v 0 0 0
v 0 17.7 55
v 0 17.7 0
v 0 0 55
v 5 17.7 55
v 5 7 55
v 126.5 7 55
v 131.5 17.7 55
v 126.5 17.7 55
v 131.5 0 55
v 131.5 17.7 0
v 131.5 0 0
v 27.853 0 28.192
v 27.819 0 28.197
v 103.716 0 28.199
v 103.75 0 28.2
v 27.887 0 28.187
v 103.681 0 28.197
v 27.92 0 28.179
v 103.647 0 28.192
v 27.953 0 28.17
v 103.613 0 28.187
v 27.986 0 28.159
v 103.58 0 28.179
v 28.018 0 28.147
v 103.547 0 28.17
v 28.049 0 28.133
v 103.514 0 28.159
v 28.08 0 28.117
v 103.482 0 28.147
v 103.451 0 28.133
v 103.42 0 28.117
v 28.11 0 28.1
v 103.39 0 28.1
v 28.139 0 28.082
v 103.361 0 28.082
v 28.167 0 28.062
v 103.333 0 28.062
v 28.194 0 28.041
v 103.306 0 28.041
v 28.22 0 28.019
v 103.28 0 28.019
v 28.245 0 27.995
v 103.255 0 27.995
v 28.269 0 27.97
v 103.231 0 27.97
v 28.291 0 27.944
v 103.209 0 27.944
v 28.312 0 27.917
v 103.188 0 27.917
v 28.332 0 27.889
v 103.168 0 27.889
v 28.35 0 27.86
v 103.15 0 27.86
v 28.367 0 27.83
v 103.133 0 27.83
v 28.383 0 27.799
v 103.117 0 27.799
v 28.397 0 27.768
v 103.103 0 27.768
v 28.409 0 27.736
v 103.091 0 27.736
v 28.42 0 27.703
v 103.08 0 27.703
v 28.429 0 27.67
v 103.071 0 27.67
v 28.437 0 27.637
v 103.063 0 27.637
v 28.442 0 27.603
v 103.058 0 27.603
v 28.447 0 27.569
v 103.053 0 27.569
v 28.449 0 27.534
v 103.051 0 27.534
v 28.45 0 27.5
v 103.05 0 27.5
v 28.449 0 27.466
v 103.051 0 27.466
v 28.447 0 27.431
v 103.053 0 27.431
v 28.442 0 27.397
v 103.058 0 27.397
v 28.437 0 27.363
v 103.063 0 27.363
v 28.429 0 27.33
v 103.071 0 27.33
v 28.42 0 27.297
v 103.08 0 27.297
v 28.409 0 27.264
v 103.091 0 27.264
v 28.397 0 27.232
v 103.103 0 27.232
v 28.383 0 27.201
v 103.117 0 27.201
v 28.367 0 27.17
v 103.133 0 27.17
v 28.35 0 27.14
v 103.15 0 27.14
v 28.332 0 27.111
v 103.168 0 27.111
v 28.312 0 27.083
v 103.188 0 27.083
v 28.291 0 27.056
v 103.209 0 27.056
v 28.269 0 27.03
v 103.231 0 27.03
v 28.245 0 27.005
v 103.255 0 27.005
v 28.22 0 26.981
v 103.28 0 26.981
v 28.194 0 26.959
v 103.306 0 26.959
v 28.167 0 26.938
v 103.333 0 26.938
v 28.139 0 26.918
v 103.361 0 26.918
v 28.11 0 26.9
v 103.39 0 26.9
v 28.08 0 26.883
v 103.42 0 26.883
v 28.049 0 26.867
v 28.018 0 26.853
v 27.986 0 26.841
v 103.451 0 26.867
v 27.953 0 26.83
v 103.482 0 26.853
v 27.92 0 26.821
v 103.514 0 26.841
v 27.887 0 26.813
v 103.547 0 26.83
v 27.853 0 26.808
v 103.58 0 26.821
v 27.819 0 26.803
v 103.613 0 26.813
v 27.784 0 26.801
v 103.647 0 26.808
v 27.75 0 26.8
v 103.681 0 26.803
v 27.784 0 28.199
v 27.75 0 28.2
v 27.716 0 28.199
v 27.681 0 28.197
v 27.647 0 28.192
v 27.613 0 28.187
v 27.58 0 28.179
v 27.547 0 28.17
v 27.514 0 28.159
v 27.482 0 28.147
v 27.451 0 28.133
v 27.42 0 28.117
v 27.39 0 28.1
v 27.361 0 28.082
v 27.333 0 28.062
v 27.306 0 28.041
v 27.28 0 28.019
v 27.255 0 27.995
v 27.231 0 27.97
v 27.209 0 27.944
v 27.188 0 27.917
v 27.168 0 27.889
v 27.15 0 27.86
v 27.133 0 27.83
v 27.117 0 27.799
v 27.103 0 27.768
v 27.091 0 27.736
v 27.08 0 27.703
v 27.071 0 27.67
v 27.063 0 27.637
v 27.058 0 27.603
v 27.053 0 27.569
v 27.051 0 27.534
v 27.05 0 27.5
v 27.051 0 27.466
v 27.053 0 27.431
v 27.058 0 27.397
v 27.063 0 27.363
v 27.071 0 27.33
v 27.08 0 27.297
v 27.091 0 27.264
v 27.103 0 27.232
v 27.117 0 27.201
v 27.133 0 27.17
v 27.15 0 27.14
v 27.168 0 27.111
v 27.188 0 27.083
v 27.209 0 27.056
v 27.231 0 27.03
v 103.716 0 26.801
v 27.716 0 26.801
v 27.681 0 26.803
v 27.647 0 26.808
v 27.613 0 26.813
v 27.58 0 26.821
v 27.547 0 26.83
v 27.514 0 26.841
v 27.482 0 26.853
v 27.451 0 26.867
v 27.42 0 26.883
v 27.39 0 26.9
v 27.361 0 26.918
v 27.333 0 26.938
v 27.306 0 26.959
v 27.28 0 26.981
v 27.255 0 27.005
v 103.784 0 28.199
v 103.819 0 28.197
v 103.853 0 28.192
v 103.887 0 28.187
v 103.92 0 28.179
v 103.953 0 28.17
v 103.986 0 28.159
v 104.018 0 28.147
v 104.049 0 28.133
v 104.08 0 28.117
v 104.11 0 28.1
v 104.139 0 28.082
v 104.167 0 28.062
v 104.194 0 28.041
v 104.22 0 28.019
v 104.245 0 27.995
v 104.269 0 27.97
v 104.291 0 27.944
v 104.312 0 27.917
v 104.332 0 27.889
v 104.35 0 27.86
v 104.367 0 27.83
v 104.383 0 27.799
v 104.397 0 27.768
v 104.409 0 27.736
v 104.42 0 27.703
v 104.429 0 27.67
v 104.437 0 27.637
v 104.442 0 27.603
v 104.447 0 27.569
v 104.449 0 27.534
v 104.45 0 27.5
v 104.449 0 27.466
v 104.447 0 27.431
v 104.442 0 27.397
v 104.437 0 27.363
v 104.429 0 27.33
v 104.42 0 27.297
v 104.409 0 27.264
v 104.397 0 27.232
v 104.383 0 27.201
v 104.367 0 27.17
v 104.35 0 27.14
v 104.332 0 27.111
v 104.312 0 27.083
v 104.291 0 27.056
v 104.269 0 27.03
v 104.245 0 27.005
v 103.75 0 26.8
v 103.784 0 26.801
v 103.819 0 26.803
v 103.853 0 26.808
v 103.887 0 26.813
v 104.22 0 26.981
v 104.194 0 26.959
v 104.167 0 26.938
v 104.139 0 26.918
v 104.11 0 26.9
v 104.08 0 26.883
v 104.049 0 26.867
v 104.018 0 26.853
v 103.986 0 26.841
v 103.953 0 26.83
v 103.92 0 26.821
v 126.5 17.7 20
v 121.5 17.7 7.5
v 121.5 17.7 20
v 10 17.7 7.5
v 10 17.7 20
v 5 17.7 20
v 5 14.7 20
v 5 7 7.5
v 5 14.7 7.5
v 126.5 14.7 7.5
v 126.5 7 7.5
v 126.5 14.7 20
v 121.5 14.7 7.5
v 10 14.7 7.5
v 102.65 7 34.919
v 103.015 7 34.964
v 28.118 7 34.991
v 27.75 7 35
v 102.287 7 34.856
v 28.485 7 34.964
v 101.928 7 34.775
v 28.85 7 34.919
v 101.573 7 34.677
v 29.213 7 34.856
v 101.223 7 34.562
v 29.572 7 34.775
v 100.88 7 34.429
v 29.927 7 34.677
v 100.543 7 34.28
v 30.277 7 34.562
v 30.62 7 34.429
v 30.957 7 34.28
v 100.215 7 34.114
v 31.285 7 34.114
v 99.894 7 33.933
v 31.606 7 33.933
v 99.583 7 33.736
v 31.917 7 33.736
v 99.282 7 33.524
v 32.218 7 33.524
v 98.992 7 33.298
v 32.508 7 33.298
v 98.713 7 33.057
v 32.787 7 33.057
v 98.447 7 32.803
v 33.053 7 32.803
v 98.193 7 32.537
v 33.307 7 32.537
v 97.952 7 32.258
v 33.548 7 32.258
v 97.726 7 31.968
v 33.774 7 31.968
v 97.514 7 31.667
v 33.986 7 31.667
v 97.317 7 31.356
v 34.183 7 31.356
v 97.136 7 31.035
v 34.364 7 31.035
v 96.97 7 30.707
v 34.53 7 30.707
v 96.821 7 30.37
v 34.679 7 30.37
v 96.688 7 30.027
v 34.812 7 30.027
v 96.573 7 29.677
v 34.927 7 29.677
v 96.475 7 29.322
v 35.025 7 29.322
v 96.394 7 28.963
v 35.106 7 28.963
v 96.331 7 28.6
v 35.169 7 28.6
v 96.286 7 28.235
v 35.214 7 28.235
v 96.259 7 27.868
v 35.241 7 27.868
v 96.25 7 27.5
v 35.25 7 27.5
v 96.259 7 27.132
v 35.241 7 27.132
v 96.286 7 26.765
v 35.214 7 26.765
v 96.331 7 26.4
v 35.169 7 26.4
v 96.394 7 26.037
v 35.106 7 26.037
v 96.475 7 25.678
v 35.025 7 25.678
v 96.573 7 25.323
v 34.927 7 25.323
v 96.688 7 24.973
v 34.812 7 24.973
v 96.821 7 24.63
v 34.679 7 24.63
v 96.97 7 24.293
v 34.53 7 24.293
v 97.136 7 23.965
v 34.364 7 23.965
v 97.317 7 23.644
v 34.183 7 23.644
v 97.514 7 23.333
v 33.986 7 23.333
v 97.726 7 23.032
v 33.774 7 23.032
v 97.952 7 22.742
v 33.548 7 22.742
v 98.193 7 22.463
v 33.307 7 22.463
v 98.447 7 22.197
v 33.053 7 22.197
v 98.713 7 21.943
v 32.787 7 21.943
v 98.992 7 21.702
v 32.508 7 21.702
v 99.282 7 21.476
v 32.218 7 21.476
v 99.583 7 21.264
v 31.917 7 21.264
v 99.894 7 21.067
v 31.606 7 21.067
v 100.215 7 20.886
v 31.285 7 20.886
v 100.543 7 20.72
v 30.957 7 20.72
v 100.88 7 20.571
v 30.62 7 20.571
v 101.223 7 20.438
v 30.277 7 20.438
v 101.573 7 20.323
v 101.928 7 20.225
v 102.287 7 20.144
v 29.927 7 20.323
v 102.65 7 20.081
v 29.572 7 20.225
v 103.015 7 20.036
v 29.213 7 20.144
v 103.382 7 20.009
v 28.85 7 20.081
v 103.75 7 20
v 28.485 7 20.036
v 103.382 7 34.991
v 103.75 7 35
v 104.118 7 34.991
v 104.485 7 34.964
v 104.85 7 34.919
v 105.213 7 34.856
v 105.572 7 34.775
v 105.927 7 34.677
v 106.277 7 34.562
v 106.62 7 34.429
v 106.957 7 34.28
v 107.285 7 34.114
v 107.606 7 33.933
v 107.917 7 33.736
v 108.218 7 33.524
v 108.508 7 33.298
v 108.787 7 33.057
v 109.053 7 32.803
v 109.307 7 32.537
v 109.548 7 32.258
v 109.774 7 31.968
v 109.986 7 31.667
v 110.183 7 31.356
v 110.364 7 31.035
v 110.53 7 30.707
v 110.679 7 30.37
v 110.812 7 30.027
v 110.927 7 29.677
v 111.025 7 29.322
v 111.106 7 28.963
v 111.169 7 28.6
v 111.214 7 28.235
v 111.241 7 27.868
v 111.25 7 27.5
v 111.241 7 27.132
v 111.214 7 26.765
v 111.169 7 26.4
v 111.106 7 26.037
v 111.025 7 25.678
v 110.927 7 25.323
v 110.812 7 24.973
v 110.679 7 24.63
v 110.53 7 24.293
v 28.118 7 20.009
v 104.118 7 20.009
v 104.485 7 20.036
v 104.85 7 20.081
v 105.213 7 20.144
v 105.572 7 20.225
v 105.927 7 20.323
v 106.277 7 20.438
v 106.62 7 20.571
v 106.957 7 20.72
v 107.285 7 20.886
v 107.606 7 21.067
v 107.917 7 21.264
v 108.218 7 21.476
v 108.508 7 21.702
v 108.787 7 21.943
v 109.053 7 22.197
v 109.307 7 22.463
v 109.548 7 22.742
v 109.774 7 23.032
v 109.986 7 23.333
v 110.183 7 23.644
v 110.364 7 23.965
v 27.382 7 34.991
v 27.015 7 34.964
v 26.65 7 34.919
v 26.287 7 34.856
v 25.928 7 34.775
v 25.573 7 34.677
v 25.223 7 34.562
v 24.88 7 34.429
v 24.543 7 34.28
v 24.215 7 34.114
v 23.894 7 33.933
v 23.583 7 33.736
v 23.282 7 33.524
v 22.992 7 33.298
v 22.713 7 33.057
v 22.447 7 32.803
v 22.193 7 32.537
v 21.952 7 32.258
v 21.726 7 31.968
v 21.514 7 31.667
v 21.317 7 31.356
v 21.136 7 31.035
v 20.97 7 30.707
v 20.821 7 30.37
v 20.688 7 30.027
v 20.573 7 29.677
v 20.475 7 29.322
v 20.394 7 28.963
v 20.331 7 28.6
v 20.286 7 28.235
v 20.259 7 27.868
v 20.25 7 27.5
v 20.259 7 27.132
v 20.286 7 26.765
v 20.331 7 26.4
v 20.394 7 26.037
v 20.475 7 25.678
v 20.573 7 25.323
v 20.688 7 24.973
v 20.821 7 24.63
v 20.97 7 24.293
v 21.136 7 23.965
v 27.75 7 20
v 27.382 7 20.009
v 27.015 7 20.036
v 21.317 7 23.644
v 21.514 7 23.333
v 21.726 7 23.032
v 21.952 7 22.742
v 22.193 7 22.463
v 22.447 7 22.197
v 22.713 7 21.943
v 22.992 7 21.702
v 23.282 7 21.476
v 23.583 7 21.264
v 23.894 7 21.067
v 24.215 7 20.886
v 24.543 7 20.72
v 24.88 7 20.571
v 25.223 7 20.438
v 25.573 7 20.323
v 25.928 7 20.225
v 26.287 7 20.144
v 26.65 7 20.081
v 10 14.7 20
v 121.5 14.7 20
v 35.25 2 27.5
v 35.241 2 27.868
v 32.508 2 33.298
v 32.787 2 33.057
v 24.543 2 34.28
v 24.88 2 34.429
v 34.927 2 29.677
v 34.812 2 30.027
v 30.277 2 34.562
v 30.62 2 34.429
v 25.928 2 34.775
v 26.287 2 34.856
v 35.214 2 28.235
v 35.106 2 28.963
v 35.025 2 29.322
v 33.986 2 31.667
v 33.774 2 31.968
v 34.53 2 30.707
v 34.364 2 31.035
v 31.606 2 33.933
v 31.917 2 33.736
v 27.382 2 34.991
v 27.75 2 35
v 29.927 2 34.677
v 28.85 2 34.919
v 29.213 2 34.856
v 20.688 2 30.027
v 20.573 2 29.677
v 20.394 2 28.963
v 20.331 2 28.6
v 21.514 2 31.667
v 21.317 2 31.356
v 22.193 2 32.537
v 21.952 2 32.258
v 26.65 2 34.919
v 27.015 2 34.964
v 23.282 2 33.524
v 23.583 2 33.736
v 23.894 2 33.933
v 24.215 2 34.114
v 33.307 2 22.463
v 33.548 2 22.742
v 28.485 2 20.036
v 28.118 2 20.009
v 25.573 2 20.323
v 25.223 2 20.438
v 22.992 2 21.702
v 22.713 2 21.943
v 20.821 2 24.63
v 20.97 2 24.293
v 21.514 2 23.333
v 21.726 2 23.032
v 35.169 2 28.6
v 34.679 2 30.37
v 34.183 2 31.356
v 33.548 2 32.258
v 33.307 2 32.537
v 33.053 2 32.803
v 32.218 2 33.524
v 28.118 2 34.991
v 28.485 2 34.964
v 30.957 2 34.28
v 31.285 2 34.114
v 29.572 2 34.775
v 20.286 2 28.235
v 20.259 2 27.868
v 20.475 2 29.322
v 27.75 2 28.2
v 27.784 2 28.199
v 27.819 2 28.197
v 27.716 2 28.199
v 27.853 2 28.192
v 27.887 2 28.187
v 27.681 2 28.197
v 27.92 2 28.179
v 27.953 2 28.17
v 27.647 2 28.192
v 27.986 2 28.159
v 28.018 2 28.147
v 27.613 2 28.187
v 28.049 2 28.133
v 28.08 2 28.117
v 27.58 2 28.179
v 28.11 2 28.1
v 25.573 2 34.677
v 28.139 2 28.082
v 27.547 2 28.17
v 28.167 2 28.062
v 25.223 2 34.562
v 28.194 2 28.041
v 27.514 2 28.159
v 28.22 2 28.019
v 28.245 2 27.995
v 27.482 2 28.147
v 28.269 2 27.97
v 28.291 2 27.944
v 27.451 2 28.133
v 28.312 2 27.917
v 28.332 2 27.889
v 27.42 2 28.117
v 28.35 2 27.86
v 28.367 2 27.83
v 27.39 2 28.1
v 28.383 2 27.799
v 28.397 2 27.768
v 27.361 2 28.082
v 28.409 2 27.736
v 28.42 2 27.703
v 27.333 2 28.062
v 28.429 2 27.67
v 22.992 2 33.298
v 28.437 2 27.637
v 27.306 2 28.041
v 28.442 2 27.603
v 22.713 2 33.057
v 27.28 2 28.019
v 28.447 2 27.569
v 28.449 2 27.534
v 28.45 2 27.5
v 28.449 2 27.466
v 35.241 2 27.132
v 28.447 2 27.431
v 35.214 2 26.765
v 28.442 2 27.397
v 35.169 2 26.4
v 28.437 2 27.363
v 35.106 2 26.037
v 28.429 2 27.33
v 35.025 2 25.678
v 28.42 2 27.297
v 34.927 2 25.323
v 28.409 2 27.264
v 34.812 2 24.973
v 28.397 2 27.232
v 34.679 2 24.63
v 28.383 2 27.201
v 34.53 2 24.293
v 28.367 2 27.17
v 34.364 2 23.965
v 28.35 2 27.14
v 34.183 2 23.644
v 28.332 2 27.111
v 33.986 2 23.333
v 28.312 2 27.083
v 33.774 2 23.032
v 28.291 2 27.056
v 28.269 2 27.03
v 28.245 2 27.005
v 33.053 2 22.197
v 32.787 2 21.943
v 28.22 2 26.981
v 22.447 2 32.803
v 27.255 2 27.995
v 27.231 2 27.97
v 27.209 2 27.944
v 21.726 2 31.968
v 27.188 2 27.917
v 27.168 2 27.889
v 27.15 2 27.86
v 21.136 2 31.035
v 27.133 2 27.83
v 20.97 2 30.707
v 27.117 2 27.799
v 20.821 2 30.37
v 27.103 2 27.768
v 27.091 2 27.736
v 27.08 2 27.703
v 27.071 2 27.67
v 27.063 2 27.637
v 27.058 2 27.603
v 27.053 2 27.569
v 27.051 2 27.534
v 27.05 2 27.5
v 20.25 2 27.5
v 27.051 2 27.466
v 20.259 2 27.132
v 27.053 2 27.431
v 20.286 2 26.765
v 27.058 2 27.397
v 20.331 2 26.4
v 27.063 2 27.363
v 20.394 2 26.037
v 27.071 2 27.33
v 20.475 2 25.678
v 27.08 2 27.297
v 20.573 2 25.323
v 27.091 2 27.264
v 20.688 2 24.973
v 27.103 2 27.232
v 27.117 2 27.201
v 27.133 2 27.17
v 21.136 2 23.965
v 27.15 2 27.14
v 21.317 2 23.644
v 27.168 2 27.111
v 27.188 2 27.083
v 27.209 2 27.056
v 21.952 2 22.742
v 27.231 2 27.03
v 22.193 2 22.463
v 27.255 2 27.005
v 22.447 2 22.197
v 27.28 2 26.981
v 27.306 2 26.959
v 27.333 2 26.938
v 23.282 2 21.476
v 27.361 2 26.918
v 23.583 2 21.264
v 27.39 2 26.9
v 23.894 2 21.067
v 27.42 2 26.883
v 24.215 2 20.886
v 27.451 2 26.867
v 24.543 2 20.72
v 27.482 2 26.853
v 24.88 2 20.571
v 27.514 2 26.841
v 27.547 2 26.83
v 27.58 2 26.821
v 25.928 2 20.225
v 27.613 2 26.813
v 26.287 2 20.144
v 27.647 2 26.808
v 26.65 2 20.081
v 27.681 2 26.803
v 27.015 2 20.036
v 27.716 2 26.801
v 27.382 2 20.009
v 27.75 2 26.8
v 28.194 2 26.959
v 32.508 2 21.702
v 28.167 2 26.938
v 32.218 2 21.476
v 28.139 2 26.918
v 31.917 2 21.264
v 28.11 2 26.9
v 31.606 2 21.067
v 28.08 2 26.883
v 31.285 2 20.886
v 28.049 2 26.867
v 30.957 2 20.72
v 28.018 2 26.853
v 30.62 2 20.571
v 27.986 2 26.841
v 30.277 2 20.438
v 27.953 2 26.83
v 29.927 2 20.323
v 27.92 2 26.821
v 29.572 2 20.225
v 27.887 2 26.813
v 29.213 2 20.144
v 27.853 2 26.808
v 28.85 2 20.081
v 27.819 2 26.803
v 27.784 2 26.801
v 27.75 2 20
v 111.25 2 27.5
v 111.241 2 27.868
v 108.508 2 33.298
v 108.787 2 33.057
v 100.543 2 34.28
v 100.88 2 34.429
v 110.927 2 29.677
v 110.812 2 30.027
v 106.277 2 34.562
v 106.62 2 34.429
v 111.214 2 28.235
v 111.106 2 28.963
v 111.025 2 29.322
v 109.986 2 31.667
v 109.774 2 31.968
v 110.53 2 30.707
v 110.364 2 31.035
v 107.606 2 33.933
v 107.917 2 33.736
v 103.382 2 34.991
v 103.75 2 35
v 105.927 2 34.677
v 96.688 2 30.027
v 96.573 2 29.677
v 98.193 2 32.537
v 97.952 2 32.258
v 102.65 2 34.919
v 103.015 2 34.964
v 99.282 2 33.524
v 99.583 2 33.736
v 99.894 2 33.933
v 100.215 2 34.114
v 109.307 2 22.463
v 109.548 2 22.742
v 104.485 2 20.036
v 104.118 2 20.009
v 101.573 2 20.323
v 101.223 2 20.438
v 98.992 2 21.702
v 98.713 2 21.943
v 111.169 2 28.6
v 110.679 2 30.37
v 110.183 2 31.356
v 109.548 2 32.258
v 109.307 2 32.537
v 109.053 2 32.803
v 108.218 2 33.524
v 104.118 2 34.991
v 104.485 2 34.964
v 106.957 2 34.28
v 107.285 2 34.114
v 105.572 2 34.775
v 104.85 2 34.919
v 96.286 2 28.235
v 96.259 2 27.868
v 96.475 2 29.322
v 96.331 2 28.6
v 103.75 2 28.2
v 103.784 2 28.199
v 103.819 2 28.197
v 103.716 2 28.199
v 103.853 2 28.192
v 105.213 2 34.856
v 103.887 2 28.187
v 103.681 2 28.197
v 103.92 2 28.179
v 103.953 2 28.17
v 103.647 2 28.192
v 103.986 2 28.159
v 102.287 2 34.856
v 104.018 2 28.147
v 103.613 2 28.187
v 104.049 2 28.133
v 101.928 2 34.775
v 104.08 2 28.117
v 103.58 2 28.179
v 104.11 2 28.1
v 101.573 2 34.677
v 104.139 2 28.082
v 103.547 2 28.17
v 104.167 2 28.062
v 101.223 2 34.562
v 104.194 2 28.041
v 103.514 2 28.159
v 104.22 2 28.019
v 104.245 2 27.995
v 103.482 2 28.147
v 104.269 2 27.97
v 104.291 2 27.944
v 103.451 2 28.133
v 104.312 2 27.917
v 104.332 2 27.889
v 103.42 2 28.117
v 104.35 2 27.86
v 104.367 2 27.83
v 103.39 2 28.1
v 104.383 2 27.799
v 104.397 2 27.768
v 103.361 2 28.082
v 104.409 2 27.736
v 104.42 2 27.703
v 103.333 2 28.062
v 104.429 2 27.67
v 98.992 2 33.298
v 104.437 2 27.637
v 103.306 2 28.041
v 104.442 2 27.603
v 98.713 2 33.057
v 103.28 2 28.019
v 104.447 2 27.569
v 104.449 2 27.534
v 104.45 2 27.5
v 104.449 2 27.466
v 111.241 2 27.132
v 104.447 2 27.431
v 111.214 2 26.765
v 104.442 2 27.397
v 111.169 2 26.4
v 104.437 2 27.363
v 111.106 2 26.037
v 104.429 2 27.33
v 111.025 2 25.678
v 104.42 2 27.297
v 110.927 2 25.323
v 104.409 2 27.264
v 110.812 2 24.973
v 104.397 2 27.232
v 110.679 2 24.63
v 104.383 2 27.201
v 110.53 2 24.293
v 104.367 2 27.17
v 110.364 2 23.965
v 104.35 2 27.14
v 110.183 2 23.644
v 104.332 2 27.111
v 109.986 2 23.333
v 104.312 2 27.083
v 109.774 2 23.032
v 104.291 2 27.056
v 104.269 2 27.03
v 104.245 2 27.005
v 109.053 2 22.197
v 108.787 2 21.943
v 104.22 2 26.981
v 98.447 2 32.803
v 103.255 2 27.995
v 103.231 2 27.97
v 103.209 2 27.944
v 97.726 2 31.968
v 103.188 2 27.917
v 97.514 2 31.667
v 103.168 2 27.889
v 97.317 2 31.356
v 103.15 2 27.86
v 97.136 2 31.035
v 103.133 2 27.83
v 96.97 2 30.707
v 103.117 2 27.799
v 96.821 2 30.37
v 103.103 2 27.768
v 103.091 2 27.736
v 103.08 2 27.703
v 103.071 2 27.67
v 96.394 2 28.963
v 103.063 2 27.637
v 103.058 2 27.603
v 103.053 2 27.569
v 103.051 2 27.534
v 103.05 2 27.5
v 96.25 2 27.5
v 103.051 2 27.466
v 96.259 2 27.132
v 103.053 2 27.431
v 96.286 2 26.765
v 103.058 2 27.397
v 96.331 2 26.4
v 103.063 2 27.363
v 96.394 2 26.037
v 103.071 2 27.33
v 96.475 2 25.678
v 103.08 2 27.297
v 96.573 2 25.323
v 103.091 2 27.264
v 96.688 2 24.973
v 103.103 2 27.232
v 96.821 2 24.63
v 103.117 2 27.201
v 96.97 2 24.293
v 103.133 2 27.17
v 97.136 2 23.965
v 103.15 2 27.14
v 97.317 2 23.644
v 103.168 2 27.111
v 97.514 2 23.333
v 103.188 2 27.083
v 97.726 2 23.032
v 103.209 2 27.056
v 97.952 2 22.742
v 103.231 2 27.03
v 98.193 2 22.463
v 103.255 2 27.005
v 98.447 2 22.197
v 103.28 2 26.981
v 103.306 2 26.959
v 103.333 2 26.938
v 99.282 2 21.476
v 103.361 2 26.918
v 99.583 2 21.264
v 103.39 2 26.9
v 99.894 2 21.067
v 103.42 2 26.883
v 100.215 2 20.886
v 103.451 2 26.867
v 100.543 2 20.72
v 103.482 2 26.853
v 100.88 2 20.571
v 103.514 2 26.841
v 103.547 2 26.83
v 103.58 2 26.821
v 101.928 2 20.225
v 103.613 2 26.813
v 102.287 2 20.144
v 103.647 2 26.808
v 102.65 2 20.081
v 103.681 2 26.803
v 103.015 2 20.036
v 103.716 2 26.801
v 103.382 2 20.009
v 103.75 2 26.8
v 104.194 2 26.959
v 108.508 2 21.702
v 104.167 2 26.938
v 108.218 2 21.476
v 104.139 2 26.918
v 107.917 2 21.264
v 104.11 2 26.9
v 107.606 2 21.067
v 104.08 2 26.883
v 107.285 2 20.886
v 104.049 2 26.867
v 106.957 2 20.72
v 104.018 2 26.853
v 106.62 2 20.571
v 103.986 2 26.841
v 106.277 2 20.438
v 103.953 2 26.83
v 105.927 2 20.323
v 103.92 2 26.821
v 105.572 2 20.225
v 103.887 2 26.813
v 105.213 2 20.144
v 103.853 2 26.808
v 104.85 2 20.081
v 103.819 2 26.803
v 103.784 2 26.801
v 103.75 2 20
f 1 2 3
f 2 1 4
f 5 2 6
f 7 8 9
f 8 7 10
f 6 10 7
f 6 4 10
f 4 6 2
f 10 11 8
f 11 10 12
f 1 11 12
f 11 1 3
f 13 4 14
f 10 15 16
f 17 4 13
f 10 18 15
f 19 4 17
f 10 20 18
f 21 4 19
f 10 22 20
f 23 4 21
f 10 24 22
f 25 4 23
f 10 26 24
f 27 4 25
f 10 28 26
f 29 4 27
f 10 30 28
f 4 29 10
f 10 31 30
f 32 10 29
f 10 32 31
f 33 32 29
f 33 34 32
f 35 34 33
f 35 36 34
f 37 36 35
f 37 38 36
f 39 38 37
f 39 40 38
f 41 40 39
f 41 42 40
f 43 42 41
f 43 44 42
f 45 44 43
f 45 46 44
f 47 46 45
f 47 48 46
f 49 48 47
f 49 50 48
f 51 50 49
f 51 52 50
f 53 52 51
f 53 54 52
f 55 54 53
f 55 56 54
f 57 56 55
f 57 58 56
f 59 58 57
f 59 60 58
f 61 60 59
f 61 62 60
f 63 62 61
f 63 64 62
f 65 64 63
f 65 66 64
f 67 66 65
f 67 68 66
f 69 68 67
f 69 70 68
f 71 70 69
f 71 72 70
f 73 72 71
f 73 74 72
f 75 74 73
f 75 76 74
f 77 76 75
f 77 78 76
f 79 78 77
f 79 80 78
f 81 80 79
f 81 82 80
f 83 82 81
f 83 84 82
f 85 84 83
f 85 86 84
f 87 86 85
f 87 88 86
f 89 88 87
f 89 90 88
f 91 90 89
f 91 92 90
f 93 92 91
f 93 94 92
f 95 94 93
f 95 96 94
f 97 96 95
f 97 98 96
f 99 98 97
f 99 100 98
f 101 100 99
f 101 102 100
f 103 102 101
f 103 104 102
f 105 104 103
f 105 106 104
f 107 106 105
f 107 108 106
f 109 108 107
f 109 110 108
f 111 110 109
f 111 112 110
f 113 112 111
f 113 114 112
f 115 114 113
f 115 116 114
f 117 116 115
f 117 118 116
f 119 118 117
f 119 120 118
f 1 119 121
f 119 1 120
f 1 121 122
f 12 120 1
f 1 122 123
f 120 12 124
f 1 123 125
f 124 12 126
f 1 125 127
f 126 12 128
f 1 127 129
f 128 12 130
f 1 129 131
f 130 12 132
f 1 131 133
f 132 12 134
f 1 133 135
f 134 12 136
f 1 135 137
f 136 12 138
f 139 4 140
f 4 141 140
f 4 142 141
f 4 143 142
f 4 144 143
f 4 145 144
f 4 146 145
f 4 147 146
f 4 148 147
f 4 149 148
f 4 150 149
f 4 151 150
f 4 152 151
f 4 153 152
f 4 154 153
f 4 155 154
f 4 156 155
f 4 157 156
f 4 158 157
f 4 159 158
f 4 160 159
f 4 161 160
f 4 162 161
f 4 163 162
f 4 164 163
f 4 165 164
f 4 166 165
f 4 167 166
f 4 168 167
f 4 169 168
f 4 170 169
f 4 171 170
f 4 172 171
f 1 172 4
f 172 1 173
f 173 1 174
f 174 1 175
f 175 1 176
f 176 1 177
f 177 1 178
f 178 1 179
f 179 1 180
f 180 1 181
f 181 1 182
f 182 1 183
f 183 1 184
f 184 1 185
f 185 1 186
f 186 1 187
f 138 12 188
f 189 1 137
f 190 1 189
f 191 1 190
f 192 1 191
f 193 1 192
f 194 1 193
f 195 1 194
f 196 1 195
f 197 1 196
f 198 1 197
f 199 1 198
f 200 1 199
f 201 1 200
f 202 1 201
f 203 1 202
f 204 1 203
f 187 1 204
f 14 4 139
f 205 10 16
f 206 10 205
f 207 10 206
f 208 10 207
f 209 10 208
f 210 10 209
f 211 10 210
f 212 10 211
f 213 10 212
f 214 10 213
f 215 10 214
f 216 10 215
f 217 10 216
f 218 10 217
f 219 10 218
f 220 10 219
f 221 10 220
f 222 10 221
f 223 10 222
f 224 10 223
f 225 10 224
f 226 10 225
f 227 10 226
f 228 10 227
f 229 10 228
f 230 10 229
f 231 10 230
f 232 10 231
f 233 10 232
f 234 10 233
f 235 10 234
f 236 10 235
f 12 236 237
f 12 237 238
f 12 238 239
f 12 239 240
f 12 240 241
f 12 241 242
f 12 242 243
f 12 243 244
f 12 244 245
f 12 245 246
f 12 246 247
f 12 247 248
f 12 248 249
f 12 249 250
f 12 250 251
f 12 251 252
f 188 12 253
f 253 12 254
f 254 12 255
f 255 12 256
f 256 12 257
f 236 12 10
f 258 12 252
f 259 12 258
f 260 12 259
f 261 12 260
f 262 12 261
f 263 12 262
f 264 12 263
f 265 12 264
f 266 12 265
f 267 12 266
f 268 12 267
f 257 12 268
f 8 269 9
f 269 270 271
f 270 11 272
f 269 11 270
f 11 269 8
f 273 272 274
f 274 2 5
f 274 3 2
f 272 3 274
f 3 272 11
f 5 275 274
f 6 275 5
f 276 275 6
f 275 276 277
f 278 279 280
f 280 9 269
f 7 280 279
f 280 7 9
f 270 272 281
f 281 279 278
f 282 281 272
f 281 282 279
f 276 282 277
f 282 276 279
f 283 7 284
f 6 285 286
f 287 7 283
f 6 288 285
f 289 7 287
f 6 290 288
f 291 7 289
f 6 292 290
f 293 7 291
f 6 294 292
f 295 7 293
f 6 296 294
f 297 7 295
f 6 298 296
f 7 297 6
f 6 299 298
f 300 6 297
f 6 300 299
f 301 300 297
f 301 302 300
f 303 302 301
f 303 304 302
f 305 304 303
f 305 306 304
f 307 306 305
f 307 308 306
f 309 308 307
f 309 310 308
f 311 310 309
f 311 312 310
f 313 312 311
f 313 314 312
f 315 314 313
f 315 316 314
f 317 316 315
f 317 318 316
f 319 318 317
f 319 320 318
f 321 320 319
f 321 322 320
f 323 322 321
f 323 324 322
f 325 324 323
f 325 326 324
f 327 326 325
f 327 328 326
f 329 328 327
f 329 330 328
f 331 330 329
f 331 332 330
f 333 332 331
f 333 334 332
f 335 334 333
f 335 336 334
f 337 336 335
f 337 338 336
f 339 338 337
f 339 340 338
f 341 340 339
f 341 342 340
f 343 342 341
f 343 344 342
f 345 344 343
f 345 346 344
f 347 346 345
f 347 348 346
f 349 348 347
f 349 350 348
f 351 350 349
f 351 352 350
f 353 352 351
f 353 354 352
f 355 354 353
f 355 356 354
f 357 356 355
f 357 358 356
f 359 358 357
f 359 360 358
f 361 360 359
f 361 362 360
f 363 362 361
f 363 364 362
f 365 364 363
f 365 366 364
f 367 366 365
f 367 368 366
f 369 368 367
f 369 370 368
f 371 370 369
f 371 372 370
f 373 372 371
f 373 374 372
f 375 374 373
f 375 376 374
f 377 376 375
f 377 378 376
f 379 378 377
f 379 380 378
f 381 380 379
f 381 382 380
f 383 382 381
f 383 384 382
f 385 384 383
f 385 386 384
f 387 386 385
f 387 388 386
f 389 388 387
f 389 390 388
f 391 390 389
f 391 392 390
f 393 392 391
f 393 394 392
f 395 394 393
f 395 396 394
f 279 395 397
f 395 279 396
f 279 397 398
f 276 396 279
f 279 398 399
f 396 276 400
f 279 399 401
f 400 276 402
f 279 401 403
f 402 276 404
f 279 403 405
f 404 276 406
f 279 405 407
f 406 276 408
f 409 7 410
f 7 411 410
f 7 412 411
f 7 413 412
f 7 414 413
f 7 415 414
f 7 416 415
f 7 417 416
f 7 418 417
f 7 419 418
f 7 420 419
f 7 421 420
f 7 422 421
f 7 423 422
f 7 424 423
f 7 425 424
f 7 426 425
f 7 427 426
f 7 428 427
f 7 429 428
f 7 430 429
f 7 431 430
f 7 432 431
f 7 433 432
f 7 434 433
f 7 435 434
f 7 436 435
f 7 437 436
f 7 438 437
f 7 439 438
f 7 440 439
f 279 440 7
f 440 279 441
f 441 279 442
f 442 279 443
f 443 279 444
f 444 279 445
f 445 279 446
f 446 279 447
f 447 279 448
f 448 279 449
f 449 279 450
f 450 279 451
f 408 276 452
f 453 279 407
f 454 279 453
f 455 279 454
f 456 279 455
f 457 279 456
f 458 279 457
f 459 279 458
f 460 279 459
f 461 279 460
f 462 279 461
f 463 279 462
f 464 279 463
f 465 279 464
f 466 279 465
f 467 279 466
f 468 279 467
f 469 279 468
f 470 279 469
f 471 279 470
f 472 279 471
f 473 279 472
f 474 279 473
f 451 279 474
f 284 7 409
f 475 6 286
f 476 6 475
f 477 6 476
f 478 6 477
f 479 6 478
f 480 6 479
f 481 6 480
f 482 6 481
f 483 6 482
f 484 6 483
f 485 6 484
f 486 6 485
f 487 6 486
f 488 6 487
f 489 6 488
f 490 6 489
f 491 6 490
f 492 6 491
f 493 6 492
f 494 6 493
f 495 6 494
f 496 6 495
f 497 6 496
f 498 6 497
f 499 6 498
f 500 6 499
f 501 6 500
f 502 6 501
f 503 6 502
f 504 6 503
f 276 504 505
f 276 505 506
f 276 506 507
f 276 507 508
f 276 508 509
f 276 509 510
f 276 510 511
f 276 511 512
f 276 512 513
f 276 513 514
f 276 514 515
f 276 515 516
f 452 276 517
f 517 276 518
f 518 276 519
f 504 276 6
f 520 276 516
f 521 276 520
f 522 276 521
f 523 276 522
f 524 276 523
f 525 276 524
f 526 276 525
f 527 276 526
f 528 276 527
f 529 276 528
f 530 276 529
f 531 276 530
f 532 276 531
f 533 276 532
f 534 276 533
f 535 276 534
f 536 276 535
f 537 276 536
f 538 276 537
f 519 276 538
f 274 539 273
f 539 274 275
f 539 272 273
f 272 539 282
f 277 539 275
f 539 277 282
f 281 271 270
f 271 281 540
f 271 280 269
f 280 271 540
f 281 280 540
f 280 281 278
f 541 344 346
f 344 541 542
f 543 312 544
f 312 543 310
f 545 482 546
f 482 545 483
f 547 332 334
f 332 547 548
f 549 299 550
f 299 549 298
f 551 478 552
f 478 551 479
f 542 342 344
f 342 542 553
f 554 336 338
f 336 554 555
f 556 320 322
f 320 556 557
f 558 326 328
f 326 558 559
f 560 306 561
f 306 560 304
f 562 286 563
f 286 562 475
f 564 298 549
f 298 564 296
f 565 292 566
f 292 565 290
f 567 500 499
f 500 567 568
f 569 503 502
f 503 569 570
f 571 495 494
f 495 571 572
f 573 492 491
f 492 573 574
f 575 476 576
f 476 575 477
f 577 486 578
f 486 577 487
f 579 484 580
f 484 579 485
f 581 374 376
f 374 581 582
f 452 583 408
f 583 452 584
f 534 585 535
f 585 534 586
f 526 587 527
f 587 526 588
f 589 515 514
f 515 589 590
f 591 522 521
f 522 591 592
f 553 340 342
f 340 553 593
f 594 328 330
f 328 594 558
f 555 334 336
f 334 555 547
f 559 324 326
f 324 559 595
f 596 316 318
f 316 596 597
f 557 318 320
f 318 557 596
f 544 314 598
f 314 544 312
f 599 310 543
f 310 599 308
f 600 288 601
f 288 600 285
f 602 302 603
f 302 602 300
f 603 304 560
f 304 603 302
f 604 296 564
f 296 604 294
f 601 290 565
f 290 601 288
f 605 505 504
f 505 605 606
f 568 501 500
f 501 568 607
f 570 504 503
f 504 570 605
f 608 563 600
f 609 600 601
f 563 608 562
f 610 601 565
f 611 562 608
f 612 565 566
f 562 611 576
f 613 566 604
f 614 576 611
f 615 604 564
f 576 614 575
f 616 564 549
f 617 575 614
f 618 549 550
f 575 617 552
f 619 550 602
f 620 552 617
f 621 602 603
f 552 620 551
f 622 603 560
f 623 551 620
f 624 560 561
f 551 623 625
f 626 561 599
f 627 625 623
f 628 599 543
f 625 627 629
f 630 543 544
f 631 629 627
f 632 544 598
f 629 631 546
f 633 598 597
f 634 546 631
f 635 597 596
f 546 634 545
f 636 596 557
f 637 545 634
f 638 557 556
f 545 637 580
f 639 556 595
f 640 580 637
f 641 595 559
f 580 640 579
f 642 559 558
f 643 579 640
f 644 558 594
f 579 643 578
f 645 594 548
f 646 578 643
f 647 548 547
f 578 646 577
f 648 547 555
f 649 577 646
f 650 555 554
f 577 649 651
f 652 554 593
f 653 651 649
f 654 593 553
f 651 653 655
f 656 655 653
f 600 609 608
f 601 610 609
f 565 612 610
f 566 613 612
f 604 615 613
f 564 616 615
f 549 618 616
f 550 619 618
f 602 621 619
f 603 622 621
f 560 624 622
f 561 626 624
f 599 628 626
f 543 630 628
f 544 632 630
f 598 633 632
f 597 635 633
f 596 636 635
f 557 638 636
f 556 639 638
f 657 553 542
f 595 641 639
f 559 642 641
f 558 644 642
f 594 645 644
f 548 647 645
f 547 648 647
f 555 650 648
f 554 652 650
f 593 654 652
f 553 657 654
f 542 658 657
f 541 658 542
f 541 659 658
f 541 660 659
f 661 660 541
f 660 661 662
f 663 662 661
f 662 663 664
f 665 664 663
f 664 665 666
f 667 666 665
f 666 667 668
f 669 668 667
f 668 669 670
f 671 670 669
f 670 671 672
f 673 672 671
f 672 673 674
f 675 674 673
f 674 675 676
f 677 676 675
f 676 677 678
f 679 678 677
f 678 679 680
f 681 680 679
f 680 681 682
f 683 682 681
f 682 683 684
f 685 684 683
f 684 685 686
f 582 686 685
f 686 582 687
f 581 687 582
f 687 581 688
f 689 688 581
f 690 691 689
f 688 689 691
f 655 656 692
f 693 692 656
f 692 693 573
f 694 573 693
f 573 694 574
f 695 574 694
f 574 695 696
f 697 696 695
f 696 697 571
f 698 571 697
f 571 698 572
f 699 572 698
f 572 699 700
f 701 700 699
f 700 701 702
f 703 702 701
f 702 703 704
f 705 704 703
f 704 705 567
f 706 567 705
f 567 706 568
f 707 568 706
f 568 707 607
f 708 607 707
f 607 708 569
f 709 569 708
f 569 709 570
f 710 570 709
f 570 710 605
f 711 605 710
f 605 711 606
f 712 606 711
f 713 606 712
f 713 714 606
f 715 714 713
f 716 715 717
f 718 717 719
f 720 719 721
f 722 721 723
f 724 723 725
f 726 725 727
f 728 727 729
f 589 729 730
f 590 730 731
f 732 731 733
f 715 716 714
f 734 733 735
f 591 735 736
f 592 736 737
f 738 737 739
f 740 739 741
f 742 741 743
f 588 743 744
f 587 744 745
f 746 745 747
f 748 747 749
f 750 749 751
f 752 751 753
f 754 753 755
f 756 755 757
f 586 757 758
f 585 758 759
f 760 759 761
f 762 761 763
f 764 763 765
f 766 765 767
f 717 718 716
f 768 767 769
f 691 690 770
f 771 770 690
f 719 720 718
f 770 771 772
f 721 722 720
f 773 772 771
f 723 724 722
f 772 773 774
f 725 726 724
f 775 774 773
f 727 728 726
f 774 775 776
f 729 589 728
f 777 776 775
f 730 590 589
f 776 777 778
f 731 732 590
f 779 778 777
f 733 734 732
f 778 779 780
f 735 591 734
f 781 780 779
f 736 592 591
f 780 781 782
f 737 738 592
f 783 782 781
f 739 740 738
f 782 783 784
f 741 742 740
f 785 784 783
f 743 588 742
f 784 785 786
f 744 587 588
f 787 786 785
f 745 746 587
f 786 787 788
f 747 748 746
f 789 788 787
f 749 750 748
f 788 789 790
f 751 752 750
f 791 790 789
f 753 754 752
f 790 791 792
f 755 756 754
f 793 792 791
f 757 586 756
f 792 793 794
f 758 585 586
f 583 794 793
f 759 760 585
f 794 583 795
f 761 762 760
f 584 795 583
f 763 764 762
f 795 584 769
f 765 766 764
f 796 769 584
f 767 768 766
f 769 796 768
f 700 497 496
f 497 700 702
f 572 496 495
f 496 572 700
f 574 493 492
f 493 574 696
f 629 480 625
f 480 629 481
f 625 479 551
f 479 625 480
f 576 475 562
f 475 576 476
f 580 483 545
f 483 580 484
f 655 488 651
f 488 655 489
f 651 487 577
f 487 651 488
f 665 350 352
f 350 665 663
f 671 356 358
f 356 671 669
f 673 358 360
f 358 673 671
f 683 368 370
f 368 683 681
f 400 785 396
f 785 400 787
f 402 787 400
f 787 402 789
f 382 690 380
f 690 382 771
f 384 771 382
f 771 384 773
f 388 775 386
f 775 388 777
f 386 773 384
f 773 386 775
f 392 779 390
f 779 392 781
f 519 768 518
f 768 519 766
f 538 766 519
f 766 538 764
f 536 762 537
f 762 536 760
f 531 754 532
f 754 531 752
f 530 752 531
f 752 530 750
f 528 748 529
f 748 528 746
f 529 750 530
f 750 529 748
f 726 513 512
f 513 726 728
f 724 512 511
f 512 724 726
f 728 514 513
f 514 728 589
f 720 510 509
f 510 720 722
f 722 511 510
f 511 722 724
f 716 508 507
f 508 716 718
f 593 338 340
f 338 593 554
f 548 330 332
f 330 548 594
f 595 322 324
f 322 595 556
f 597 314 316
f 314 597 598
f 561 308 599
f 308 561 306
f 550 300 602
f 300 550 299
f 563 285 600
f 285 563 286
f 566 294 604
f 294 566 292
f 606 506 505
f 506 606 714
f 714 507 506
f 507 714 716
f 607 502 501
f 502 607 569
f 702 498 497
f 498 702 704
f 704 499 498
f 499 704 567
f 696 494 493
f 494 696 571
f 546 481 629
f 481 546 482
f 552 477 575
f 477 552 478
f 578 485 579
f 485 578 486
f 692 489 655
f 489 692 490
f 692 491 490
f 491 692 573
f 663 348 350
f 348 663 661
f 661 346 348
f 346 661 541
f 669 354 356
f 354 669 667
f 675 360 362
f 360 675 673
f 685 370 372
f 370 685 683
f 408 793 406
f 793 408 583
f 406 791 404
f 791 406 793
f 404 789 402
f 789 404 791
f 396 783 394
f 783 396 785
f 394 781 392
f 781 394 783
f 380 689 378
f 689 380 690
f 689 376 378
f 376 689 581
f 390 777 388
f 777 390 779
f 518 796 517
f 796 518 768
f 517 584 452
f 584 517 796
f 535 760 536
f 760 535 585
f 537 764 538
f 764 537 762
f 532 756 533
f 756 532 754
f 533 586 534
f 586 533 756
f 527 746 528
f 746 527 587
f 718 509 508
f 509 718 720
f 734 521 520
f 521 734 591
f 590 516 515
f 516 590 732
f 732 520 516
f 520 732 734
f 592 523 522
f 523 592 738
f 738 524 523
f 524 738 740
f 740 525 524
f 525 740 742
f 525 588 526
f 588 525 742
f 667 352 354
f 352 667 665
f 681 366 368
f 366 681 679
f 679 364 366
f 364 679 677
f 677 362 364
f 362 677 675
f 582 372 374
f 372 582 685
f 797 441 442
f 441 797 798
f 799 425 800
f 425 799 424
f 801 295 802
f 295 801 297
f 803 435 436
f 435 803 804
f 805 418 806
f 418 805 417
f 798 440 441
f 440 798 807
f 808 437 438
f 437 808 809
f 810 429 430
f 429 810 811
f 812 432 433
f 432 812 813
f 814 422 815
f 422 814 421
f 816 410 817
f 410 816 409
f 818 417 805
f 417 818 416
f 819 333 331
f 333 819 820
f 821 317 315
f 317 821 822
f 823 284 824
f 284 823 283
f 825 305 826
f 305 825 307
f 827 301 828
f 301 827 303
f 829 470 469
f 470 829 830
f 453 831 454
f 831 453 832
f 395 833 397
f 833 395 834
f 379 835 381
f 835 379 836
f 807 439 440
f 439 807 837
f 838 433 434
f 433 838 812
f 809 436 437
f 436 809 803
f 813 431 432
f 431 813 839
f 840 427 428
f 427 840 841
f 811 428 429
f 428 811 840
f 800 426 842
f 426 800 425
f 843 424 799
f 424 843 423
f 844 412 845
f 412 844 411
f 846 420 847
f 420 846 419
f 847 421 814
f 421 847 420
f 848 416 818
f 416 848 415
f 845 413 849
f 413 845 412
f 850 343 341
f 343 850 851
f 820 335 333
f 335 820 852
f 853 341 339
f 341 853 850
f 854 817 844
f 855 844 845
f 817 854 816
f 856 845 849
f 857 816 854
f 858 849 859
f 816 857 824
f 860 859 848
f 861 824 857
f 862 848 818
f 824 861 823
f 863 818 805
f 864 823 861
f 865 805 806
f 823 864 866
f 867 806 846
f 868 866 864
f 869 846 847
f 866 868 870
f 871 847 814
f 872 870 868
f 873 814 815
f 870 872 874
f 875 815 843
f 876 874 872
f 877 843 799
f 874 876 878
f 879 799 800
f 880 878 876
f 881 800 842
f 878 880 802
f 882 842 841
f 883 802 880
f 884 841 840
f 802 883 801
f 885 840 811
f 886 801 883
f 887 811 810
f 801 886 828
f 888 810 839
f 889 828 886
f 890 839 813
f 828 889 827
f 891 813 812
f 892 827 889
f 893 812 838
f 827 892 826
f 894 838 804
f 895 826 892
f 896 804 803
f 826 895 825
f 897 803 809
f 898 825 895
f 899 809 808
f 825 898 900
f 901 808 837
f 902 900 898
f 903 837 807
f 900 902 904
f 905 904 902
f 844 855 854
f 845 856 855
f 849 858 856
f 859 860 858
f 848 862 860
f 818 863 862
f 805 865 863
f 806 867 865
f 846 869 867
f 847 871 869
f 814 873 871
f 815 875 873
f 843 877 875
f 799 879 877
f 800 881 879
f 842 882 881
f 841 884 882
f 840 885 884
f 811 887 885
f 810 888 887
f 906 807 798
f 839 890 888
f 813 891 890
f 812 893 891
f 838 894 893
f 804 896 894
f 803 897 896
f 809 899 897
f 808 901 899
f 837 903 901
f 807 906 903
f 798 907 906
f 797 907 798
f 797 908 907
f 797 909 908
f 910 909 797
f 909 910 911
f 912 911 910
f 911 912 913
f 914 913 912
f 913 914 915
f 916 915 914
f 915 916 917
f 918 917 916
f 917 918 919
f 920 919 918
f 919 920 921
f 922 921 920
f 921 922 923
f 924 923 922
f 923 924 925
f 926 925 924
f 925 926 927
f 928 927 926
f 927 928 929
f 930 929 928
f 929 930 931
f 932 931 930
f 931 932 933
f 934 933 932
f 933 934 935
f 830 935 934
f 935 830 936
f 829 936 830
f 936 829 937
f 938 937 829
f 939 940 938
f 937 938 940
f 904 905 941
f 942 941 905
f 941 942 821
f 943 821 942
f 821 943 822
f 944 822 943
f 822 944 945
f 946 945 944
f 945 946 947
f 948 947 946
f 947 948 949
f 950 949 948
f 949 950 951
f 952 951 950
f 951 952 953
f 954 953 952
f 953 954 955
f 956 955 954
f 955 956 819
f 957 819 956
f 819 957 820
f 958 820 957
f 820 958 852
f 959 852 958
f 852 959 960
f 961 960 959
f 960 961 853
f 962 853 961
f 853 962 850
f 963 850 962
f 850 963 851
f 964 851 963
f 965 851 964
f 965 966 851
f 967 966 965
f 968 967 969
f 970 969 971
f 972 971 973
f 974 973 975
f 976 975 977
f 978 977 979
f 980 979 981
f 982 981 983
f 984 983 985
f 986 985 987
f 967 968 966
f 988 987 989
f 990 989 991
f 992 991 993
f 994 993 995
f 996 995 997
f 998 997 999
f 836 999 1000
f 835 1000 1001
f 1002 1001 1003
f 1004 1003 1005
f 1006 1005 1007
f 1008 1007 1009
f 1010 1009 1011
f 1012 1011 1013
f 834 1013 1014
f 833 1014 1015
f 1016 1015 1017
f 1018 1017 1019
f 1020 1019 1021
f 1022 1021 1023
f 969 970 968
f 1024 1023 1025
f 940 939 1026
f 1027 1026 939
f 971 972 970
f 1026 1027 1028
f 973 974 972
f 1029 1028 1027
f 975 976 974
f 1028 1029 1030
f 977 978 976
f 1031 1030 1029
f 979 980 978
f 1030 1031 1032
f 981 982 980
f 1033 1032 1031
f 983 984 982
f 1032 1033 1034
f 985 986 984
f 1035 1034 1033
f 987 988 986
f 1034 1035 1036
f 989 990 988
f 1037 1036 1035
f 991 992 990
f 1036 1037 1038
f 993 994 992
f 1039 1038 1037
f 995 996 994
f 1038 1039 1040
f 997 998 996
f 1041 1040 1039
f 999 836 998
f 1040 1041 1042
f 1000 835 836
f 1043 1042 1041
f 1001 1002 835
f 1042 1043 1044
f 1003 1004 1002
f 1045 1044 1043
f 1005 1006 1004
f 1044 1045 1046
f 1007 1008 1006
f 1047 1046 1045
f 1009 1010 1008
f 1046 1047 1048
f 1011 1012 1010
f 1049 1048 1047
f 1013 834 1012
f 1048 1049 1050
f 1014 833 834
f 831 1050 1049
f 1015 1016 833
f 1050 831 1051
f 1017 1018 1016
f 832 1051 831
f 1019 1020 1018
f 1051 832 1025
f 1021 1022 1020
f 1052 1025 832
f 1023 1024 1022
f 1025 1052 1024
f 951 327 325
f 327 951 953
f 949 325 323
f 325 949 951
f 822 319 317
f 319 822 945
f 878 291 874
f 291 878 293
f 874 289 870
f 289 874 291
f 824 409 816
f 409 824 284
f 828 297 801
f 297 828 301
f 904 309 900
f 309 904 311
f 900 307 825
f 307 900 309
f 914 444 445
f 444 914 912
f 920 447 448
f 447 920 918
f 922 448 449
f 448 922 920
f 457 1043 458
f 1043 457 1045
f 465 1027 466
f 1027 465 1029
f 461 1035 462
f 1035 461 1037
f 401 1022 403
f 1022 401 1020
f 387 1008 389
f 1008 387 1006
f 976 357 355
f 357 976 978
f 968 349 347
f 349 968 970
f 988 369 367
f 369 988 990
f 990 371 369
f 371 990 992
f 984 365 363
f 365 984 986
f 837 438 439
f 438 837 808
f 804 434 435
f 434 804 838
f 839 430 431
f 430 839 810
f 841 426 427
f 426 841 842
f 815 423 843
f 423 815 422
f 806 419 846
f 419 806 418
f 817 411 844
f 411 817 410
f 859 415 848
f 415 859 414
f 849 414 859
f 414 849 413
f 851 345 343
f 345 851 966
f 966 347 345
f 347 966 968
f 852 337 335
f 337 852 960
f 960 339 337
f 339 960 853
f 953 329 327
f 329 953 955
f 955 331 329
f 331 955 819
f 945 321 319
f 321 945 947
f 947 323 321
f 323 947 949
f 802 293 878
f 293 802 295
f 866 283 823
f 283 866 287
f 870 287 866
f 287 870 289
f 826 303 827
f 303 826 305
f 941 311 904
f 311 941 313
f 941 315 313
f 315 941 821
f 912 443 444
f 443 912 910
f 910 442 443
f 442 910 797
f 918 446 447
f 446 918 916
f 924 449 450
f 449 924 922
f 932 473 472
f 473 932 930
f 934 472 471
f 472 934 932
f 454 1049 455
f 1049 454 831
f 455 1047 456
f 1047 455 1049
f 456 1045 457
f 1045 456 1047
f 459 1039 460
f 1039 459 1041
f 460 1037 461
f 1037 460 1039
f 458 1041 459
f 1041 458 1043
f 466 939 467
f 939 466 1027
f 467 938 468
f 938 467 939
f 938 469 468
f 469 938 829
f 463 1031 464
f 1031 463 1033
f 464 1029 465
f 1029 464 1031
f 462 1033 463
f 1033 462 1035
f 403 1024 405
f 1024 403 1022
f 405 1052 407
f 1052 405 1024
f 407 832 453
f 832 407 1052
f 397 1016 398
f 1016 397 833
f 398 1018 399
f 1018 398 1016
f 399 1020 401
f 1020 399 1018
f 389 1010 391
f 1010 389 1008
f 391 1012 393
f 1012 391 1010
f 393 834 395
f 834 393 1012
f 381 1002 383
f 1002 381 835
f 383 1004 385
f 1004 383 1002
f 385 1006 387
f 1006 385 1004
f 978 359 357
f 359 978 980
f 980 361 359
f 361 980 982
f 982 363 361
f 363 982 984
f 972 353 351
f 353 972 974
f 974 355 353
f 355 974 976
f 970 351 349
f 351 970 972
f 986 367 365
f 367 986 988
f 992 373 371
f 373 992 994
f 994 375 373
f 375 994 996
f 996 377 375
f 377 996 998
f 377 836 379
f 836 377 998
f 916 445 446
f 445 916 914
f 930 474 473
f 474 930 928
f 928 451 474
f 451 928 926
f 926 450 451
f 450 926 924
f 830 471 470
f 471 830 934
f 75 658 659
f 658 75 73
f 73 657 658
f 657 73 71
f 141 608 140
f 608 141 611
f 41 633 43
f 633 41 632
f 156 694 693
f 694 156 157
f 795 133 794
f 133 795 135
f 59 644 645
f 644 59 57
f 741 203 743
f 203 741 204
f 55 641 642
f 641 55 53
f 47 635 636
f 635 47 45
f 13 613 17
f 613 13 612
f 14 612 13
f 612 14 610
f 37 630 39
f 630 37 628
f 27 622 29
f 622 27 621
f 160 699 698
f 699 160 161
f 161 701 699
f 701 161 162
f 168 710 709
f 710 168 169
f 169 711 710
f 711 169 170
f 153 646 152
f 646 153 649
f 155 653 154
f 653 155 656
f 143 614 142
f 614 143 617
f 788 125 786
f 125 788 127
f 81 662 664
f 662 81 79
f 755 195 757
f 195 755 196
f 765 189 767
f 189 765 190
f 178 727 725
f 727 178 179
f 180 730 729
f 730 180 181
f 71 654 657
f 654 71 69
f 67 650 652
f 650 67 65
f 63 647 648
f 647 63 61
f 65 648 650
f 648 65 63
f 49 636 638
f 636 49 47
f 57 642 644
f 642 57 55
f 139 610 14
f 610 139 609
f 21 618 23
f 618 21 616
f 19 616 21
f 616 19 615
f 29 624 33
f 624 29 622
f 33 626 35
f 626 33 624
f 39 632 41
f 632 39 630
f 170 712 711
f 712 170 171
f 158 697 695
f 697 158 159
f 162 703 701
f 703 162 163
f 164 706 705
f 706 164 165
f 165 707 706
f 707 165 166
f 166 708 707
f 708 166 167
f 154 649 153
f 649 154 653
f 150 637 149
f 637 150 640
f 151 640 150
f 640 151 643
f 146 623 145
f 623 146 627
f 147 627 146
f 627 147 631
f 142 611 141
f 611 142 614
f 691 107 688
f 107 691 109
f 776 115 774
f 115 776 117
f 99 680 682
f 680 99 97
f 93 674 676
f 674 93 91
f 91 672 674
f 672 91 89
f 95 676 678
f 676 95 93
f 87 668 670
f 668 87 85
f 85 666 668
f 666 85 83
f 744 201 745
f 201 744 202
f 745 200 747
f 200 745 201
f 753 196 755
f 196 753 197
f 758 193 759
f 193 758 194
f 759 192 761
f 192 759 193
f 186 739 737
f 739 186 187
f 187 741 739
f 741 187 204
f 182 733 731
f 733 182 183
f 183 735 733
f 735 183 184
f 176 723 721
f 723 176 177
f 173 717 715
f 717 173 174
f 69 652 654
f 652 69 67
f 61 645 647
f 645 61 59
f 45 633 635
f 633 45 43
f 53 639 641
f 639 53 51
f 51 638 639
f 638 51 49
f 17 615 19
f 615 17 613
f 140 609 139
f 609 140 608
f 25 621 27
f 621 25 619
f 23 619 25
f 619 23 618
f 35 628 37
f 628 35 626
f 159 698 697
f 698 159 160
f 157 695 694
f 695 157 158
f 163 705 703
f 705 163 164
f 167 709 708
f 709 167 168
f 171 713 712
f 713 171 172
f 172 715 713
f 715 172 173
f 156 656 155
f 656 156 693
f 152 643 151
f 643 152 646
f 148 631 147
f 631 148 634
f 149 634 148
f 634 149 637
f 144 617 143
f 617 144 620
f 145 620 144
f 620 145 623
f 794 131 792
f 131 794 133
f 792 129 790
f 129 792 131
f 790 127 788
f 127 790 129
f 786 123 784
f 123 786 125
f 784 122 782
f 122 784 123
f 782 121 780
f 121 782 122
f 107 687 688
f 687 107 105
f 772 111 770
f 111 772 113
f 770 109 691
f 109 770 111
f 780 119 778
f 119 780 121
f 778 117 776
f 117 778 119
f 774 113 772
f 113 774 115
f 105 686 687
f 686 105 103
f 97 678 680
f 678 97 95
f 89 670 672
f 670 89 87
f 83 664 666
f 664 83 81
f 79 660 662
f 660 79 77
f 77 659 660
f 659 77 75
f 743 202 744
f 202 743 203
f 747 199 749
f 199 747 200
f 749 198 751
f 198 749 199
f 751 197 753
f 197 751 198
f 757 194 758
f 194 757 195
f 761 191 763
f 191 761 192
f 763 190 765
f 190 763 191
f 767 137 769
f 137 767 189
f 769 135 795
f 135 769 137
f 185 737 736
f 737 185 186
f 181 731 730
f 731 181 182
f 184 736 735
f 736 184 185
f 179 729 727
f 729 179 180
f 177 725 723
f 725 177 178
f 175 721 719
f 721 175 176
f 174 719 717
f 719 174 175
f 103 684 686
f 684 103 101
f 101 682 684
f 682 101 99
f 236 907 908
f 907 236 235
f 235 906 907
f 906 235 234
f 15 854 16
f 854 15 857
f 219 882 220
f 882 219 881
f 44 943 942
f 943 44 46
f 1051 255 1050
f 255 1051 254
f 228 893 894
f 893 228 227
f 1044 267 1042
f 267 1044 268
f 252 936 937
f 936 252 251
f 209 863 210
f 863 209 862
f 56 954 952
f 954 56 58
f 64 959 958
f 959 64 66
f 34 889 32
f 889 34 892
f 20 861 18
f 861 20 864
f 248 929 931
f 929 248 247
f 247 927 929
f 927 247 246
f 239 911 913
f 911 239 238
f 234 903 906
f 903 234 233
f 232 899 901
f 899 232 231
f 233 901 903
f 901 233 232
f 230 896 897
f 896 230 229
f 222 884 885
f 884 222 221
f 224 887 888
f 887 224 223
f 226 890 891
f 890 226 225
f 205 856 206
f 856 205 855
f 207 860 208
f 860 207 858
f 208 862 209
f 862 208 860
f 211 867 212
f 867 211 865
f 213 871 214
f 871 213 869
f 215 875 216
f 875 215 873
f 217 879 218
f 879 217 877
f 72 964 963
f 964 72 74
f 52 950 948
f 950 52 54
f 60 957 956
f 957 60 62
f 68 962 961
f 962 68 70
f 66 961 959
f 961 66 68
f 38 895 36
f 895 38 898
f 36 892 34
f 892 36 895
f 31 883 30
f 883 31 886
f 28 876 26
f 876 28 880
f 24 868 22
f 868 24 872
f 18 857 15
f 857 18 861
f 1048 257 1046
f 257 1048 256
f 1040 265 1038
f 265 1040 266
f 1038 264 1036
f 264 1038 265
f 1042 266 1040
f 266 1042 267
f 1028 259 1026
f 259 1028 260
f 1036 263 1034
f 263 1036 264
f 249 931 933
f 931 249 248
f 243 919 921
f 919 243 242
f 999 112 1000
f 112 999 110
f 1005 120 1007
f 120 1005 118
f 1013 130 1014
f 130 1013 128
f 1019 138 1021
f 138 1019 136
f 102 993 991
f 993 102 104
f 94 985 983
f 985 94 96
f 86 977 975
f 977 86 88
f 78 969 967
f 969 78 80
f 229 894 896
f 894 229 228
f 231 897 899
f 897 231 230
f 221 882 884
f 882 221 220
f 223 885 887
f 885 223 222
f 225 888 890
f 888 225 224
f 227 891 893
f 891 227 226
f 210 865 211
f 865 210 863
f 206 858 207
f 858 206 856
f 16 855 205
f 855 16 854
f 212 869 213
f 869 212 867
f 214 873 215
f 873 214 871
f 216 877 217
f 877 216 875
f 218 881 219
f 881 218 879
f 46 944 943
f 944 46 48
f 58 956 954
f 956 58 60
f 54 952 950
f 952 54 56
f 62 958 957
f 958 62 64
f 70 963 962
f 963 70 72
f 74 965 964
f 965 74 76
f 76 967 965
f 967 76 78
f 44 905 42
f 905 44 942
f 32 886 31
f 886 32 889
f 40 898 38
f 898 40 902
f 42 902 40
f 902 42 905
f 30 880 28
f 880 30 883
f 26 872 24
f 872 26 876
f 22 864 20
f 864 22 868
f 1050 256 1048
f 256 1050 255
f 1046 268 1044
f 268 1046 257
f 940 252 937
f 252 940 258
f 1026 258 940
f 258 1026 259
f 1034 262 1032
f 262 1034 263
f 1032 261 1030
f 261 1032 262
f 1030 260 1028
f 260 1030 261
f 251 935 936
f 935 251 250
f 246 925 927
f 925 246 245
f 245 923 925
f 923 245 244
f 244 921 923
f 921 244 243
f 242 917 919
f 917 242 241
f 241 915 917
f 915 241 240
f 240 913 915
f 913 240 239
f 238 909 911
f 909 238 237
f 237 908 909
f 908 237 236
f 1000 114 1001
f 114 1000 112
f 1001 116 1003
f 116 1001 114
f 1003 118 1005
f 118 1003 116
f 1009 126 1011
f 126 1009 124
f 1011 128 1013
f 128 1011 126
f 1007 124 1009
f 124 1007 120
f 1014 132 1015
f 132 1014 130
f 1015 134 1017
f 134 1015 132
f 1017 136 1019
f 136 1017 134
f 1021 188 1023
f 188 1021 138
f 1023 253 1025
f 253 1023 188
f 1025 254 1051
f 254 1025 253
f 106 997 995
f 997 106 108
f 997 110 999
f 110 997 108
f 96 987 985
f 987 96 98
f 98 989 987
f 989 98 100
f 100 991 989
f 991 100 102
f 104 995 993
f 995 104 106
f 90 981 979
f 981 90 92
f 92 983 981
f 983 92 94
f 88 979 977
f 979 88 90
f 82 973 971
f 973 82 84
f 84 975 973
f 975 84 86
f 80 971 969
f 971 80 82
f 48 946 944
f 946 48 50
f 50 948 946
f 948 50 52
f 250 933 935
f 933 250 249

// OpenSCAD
// M5Paper S3 wall holder - step 2 (+ thumbtack recesses)
// Units: mm

$fn = 128;

// --- Outer block ---
outer_w = 131.5;  // width  (x)
outer_d = 17.7;   // depth  (y)
outer_h = 55.0;   // height (z)

// --- Inner cutout (x/z size) ---
cut_w = 121.5;    // width
cut_h = 50.0;     // height

// Cutout center position from the outer block origin (x/z)
cut_cx = 65.75;
cut_cz = 32.5;

// --- Make front fully open ---
back_wall = 7.0;     // keep back wall thickness
eps_front = 0.2;     // punch-through for robust boolean

cut_y0 = back_wall;
cut_y1 = outer_d + eps_front;
cut_d  = cut_y1 - cut_y0;

// --- Stopper pillars ---
stop_x = 5;
stop_y = 3;
stop_z = 20;

// Derived cutout bounds in x
cut_x0 = cut_cx - cut_w/2;   // = 5.0
cut_x1 = cut_cx + cut_w/2;   // = 126.5

// --- Thumbtack recesses (back side) ---
hole_diam  = 15;   // diameter
hole_r     = hole_diam/2;
hole_depth = 5;    // depth from back face (y=0) into +y
hole_dx    = 38;   // offset from center in x

difference() {
    union() {
        // Main body with front opening
        difference() {
            cube([outer_w, outer_d, outer_h], center=false);

            // Inner cutout (front fully open)
            translate([cut_cx - cut_w/2, cut_y0, cut_cz - cut_h/2])
                cube([cut_w, cut_d, cut_h], center=false);
        }

        // Left stopper (flush with opening plane)
        translate([cut_x0, outer_d - stop_y, 0])
            cube([stop_x, stop_y, stop_z], center=false);

        // Right stopper
        translate([cut_x1 - stop_x, outer_d - stop_y, 0])
            cube([stop_x, stop_y, stop_z], center=false);
    }

    // --- Subtract: 2 cylindrical recesses from inner face (y=back_wall) toward -y ---
    // Recess spans y = back_wall-hole_depth  ..  back_wall
    translate([outer_w/2 - hole_dx, back_wall, outer_h/2])
        rotate([90, 0, 0])  // cylinder axis along +y, so it will extend toward -y after rotation
            cylinder(h=hole_depth, r=hole_r, center=false);

    translate([outer_w/2 + hole_dx, back_wall, outer_h/2])
        rotate([90, 0, 0])
            cylinder(h=hole_depth, r=hole_r, center=false);
       // --- Through pin holes (Ø1.4mm) ---
    pin_diam  = 1.4;
    pin_r     = pin_diam/2;
    pin_depth = back_wall + 0.2;  // slight punch-through

    // Left pin hole
    translate([outer_w/2 - hole_dx, back_wall, outer_h/2])
        rotate([90, 0, 0])
            cylinder(h=pin_depth, r=pin_r, center=false);

    // Right pin hole
    translate([outer_w/2 + hole_dx, back_wall, outer_h/2])
        rotate([90, 0, 0])
            cylinder(h=pin_depth, r=pin_r, center=false);


}
